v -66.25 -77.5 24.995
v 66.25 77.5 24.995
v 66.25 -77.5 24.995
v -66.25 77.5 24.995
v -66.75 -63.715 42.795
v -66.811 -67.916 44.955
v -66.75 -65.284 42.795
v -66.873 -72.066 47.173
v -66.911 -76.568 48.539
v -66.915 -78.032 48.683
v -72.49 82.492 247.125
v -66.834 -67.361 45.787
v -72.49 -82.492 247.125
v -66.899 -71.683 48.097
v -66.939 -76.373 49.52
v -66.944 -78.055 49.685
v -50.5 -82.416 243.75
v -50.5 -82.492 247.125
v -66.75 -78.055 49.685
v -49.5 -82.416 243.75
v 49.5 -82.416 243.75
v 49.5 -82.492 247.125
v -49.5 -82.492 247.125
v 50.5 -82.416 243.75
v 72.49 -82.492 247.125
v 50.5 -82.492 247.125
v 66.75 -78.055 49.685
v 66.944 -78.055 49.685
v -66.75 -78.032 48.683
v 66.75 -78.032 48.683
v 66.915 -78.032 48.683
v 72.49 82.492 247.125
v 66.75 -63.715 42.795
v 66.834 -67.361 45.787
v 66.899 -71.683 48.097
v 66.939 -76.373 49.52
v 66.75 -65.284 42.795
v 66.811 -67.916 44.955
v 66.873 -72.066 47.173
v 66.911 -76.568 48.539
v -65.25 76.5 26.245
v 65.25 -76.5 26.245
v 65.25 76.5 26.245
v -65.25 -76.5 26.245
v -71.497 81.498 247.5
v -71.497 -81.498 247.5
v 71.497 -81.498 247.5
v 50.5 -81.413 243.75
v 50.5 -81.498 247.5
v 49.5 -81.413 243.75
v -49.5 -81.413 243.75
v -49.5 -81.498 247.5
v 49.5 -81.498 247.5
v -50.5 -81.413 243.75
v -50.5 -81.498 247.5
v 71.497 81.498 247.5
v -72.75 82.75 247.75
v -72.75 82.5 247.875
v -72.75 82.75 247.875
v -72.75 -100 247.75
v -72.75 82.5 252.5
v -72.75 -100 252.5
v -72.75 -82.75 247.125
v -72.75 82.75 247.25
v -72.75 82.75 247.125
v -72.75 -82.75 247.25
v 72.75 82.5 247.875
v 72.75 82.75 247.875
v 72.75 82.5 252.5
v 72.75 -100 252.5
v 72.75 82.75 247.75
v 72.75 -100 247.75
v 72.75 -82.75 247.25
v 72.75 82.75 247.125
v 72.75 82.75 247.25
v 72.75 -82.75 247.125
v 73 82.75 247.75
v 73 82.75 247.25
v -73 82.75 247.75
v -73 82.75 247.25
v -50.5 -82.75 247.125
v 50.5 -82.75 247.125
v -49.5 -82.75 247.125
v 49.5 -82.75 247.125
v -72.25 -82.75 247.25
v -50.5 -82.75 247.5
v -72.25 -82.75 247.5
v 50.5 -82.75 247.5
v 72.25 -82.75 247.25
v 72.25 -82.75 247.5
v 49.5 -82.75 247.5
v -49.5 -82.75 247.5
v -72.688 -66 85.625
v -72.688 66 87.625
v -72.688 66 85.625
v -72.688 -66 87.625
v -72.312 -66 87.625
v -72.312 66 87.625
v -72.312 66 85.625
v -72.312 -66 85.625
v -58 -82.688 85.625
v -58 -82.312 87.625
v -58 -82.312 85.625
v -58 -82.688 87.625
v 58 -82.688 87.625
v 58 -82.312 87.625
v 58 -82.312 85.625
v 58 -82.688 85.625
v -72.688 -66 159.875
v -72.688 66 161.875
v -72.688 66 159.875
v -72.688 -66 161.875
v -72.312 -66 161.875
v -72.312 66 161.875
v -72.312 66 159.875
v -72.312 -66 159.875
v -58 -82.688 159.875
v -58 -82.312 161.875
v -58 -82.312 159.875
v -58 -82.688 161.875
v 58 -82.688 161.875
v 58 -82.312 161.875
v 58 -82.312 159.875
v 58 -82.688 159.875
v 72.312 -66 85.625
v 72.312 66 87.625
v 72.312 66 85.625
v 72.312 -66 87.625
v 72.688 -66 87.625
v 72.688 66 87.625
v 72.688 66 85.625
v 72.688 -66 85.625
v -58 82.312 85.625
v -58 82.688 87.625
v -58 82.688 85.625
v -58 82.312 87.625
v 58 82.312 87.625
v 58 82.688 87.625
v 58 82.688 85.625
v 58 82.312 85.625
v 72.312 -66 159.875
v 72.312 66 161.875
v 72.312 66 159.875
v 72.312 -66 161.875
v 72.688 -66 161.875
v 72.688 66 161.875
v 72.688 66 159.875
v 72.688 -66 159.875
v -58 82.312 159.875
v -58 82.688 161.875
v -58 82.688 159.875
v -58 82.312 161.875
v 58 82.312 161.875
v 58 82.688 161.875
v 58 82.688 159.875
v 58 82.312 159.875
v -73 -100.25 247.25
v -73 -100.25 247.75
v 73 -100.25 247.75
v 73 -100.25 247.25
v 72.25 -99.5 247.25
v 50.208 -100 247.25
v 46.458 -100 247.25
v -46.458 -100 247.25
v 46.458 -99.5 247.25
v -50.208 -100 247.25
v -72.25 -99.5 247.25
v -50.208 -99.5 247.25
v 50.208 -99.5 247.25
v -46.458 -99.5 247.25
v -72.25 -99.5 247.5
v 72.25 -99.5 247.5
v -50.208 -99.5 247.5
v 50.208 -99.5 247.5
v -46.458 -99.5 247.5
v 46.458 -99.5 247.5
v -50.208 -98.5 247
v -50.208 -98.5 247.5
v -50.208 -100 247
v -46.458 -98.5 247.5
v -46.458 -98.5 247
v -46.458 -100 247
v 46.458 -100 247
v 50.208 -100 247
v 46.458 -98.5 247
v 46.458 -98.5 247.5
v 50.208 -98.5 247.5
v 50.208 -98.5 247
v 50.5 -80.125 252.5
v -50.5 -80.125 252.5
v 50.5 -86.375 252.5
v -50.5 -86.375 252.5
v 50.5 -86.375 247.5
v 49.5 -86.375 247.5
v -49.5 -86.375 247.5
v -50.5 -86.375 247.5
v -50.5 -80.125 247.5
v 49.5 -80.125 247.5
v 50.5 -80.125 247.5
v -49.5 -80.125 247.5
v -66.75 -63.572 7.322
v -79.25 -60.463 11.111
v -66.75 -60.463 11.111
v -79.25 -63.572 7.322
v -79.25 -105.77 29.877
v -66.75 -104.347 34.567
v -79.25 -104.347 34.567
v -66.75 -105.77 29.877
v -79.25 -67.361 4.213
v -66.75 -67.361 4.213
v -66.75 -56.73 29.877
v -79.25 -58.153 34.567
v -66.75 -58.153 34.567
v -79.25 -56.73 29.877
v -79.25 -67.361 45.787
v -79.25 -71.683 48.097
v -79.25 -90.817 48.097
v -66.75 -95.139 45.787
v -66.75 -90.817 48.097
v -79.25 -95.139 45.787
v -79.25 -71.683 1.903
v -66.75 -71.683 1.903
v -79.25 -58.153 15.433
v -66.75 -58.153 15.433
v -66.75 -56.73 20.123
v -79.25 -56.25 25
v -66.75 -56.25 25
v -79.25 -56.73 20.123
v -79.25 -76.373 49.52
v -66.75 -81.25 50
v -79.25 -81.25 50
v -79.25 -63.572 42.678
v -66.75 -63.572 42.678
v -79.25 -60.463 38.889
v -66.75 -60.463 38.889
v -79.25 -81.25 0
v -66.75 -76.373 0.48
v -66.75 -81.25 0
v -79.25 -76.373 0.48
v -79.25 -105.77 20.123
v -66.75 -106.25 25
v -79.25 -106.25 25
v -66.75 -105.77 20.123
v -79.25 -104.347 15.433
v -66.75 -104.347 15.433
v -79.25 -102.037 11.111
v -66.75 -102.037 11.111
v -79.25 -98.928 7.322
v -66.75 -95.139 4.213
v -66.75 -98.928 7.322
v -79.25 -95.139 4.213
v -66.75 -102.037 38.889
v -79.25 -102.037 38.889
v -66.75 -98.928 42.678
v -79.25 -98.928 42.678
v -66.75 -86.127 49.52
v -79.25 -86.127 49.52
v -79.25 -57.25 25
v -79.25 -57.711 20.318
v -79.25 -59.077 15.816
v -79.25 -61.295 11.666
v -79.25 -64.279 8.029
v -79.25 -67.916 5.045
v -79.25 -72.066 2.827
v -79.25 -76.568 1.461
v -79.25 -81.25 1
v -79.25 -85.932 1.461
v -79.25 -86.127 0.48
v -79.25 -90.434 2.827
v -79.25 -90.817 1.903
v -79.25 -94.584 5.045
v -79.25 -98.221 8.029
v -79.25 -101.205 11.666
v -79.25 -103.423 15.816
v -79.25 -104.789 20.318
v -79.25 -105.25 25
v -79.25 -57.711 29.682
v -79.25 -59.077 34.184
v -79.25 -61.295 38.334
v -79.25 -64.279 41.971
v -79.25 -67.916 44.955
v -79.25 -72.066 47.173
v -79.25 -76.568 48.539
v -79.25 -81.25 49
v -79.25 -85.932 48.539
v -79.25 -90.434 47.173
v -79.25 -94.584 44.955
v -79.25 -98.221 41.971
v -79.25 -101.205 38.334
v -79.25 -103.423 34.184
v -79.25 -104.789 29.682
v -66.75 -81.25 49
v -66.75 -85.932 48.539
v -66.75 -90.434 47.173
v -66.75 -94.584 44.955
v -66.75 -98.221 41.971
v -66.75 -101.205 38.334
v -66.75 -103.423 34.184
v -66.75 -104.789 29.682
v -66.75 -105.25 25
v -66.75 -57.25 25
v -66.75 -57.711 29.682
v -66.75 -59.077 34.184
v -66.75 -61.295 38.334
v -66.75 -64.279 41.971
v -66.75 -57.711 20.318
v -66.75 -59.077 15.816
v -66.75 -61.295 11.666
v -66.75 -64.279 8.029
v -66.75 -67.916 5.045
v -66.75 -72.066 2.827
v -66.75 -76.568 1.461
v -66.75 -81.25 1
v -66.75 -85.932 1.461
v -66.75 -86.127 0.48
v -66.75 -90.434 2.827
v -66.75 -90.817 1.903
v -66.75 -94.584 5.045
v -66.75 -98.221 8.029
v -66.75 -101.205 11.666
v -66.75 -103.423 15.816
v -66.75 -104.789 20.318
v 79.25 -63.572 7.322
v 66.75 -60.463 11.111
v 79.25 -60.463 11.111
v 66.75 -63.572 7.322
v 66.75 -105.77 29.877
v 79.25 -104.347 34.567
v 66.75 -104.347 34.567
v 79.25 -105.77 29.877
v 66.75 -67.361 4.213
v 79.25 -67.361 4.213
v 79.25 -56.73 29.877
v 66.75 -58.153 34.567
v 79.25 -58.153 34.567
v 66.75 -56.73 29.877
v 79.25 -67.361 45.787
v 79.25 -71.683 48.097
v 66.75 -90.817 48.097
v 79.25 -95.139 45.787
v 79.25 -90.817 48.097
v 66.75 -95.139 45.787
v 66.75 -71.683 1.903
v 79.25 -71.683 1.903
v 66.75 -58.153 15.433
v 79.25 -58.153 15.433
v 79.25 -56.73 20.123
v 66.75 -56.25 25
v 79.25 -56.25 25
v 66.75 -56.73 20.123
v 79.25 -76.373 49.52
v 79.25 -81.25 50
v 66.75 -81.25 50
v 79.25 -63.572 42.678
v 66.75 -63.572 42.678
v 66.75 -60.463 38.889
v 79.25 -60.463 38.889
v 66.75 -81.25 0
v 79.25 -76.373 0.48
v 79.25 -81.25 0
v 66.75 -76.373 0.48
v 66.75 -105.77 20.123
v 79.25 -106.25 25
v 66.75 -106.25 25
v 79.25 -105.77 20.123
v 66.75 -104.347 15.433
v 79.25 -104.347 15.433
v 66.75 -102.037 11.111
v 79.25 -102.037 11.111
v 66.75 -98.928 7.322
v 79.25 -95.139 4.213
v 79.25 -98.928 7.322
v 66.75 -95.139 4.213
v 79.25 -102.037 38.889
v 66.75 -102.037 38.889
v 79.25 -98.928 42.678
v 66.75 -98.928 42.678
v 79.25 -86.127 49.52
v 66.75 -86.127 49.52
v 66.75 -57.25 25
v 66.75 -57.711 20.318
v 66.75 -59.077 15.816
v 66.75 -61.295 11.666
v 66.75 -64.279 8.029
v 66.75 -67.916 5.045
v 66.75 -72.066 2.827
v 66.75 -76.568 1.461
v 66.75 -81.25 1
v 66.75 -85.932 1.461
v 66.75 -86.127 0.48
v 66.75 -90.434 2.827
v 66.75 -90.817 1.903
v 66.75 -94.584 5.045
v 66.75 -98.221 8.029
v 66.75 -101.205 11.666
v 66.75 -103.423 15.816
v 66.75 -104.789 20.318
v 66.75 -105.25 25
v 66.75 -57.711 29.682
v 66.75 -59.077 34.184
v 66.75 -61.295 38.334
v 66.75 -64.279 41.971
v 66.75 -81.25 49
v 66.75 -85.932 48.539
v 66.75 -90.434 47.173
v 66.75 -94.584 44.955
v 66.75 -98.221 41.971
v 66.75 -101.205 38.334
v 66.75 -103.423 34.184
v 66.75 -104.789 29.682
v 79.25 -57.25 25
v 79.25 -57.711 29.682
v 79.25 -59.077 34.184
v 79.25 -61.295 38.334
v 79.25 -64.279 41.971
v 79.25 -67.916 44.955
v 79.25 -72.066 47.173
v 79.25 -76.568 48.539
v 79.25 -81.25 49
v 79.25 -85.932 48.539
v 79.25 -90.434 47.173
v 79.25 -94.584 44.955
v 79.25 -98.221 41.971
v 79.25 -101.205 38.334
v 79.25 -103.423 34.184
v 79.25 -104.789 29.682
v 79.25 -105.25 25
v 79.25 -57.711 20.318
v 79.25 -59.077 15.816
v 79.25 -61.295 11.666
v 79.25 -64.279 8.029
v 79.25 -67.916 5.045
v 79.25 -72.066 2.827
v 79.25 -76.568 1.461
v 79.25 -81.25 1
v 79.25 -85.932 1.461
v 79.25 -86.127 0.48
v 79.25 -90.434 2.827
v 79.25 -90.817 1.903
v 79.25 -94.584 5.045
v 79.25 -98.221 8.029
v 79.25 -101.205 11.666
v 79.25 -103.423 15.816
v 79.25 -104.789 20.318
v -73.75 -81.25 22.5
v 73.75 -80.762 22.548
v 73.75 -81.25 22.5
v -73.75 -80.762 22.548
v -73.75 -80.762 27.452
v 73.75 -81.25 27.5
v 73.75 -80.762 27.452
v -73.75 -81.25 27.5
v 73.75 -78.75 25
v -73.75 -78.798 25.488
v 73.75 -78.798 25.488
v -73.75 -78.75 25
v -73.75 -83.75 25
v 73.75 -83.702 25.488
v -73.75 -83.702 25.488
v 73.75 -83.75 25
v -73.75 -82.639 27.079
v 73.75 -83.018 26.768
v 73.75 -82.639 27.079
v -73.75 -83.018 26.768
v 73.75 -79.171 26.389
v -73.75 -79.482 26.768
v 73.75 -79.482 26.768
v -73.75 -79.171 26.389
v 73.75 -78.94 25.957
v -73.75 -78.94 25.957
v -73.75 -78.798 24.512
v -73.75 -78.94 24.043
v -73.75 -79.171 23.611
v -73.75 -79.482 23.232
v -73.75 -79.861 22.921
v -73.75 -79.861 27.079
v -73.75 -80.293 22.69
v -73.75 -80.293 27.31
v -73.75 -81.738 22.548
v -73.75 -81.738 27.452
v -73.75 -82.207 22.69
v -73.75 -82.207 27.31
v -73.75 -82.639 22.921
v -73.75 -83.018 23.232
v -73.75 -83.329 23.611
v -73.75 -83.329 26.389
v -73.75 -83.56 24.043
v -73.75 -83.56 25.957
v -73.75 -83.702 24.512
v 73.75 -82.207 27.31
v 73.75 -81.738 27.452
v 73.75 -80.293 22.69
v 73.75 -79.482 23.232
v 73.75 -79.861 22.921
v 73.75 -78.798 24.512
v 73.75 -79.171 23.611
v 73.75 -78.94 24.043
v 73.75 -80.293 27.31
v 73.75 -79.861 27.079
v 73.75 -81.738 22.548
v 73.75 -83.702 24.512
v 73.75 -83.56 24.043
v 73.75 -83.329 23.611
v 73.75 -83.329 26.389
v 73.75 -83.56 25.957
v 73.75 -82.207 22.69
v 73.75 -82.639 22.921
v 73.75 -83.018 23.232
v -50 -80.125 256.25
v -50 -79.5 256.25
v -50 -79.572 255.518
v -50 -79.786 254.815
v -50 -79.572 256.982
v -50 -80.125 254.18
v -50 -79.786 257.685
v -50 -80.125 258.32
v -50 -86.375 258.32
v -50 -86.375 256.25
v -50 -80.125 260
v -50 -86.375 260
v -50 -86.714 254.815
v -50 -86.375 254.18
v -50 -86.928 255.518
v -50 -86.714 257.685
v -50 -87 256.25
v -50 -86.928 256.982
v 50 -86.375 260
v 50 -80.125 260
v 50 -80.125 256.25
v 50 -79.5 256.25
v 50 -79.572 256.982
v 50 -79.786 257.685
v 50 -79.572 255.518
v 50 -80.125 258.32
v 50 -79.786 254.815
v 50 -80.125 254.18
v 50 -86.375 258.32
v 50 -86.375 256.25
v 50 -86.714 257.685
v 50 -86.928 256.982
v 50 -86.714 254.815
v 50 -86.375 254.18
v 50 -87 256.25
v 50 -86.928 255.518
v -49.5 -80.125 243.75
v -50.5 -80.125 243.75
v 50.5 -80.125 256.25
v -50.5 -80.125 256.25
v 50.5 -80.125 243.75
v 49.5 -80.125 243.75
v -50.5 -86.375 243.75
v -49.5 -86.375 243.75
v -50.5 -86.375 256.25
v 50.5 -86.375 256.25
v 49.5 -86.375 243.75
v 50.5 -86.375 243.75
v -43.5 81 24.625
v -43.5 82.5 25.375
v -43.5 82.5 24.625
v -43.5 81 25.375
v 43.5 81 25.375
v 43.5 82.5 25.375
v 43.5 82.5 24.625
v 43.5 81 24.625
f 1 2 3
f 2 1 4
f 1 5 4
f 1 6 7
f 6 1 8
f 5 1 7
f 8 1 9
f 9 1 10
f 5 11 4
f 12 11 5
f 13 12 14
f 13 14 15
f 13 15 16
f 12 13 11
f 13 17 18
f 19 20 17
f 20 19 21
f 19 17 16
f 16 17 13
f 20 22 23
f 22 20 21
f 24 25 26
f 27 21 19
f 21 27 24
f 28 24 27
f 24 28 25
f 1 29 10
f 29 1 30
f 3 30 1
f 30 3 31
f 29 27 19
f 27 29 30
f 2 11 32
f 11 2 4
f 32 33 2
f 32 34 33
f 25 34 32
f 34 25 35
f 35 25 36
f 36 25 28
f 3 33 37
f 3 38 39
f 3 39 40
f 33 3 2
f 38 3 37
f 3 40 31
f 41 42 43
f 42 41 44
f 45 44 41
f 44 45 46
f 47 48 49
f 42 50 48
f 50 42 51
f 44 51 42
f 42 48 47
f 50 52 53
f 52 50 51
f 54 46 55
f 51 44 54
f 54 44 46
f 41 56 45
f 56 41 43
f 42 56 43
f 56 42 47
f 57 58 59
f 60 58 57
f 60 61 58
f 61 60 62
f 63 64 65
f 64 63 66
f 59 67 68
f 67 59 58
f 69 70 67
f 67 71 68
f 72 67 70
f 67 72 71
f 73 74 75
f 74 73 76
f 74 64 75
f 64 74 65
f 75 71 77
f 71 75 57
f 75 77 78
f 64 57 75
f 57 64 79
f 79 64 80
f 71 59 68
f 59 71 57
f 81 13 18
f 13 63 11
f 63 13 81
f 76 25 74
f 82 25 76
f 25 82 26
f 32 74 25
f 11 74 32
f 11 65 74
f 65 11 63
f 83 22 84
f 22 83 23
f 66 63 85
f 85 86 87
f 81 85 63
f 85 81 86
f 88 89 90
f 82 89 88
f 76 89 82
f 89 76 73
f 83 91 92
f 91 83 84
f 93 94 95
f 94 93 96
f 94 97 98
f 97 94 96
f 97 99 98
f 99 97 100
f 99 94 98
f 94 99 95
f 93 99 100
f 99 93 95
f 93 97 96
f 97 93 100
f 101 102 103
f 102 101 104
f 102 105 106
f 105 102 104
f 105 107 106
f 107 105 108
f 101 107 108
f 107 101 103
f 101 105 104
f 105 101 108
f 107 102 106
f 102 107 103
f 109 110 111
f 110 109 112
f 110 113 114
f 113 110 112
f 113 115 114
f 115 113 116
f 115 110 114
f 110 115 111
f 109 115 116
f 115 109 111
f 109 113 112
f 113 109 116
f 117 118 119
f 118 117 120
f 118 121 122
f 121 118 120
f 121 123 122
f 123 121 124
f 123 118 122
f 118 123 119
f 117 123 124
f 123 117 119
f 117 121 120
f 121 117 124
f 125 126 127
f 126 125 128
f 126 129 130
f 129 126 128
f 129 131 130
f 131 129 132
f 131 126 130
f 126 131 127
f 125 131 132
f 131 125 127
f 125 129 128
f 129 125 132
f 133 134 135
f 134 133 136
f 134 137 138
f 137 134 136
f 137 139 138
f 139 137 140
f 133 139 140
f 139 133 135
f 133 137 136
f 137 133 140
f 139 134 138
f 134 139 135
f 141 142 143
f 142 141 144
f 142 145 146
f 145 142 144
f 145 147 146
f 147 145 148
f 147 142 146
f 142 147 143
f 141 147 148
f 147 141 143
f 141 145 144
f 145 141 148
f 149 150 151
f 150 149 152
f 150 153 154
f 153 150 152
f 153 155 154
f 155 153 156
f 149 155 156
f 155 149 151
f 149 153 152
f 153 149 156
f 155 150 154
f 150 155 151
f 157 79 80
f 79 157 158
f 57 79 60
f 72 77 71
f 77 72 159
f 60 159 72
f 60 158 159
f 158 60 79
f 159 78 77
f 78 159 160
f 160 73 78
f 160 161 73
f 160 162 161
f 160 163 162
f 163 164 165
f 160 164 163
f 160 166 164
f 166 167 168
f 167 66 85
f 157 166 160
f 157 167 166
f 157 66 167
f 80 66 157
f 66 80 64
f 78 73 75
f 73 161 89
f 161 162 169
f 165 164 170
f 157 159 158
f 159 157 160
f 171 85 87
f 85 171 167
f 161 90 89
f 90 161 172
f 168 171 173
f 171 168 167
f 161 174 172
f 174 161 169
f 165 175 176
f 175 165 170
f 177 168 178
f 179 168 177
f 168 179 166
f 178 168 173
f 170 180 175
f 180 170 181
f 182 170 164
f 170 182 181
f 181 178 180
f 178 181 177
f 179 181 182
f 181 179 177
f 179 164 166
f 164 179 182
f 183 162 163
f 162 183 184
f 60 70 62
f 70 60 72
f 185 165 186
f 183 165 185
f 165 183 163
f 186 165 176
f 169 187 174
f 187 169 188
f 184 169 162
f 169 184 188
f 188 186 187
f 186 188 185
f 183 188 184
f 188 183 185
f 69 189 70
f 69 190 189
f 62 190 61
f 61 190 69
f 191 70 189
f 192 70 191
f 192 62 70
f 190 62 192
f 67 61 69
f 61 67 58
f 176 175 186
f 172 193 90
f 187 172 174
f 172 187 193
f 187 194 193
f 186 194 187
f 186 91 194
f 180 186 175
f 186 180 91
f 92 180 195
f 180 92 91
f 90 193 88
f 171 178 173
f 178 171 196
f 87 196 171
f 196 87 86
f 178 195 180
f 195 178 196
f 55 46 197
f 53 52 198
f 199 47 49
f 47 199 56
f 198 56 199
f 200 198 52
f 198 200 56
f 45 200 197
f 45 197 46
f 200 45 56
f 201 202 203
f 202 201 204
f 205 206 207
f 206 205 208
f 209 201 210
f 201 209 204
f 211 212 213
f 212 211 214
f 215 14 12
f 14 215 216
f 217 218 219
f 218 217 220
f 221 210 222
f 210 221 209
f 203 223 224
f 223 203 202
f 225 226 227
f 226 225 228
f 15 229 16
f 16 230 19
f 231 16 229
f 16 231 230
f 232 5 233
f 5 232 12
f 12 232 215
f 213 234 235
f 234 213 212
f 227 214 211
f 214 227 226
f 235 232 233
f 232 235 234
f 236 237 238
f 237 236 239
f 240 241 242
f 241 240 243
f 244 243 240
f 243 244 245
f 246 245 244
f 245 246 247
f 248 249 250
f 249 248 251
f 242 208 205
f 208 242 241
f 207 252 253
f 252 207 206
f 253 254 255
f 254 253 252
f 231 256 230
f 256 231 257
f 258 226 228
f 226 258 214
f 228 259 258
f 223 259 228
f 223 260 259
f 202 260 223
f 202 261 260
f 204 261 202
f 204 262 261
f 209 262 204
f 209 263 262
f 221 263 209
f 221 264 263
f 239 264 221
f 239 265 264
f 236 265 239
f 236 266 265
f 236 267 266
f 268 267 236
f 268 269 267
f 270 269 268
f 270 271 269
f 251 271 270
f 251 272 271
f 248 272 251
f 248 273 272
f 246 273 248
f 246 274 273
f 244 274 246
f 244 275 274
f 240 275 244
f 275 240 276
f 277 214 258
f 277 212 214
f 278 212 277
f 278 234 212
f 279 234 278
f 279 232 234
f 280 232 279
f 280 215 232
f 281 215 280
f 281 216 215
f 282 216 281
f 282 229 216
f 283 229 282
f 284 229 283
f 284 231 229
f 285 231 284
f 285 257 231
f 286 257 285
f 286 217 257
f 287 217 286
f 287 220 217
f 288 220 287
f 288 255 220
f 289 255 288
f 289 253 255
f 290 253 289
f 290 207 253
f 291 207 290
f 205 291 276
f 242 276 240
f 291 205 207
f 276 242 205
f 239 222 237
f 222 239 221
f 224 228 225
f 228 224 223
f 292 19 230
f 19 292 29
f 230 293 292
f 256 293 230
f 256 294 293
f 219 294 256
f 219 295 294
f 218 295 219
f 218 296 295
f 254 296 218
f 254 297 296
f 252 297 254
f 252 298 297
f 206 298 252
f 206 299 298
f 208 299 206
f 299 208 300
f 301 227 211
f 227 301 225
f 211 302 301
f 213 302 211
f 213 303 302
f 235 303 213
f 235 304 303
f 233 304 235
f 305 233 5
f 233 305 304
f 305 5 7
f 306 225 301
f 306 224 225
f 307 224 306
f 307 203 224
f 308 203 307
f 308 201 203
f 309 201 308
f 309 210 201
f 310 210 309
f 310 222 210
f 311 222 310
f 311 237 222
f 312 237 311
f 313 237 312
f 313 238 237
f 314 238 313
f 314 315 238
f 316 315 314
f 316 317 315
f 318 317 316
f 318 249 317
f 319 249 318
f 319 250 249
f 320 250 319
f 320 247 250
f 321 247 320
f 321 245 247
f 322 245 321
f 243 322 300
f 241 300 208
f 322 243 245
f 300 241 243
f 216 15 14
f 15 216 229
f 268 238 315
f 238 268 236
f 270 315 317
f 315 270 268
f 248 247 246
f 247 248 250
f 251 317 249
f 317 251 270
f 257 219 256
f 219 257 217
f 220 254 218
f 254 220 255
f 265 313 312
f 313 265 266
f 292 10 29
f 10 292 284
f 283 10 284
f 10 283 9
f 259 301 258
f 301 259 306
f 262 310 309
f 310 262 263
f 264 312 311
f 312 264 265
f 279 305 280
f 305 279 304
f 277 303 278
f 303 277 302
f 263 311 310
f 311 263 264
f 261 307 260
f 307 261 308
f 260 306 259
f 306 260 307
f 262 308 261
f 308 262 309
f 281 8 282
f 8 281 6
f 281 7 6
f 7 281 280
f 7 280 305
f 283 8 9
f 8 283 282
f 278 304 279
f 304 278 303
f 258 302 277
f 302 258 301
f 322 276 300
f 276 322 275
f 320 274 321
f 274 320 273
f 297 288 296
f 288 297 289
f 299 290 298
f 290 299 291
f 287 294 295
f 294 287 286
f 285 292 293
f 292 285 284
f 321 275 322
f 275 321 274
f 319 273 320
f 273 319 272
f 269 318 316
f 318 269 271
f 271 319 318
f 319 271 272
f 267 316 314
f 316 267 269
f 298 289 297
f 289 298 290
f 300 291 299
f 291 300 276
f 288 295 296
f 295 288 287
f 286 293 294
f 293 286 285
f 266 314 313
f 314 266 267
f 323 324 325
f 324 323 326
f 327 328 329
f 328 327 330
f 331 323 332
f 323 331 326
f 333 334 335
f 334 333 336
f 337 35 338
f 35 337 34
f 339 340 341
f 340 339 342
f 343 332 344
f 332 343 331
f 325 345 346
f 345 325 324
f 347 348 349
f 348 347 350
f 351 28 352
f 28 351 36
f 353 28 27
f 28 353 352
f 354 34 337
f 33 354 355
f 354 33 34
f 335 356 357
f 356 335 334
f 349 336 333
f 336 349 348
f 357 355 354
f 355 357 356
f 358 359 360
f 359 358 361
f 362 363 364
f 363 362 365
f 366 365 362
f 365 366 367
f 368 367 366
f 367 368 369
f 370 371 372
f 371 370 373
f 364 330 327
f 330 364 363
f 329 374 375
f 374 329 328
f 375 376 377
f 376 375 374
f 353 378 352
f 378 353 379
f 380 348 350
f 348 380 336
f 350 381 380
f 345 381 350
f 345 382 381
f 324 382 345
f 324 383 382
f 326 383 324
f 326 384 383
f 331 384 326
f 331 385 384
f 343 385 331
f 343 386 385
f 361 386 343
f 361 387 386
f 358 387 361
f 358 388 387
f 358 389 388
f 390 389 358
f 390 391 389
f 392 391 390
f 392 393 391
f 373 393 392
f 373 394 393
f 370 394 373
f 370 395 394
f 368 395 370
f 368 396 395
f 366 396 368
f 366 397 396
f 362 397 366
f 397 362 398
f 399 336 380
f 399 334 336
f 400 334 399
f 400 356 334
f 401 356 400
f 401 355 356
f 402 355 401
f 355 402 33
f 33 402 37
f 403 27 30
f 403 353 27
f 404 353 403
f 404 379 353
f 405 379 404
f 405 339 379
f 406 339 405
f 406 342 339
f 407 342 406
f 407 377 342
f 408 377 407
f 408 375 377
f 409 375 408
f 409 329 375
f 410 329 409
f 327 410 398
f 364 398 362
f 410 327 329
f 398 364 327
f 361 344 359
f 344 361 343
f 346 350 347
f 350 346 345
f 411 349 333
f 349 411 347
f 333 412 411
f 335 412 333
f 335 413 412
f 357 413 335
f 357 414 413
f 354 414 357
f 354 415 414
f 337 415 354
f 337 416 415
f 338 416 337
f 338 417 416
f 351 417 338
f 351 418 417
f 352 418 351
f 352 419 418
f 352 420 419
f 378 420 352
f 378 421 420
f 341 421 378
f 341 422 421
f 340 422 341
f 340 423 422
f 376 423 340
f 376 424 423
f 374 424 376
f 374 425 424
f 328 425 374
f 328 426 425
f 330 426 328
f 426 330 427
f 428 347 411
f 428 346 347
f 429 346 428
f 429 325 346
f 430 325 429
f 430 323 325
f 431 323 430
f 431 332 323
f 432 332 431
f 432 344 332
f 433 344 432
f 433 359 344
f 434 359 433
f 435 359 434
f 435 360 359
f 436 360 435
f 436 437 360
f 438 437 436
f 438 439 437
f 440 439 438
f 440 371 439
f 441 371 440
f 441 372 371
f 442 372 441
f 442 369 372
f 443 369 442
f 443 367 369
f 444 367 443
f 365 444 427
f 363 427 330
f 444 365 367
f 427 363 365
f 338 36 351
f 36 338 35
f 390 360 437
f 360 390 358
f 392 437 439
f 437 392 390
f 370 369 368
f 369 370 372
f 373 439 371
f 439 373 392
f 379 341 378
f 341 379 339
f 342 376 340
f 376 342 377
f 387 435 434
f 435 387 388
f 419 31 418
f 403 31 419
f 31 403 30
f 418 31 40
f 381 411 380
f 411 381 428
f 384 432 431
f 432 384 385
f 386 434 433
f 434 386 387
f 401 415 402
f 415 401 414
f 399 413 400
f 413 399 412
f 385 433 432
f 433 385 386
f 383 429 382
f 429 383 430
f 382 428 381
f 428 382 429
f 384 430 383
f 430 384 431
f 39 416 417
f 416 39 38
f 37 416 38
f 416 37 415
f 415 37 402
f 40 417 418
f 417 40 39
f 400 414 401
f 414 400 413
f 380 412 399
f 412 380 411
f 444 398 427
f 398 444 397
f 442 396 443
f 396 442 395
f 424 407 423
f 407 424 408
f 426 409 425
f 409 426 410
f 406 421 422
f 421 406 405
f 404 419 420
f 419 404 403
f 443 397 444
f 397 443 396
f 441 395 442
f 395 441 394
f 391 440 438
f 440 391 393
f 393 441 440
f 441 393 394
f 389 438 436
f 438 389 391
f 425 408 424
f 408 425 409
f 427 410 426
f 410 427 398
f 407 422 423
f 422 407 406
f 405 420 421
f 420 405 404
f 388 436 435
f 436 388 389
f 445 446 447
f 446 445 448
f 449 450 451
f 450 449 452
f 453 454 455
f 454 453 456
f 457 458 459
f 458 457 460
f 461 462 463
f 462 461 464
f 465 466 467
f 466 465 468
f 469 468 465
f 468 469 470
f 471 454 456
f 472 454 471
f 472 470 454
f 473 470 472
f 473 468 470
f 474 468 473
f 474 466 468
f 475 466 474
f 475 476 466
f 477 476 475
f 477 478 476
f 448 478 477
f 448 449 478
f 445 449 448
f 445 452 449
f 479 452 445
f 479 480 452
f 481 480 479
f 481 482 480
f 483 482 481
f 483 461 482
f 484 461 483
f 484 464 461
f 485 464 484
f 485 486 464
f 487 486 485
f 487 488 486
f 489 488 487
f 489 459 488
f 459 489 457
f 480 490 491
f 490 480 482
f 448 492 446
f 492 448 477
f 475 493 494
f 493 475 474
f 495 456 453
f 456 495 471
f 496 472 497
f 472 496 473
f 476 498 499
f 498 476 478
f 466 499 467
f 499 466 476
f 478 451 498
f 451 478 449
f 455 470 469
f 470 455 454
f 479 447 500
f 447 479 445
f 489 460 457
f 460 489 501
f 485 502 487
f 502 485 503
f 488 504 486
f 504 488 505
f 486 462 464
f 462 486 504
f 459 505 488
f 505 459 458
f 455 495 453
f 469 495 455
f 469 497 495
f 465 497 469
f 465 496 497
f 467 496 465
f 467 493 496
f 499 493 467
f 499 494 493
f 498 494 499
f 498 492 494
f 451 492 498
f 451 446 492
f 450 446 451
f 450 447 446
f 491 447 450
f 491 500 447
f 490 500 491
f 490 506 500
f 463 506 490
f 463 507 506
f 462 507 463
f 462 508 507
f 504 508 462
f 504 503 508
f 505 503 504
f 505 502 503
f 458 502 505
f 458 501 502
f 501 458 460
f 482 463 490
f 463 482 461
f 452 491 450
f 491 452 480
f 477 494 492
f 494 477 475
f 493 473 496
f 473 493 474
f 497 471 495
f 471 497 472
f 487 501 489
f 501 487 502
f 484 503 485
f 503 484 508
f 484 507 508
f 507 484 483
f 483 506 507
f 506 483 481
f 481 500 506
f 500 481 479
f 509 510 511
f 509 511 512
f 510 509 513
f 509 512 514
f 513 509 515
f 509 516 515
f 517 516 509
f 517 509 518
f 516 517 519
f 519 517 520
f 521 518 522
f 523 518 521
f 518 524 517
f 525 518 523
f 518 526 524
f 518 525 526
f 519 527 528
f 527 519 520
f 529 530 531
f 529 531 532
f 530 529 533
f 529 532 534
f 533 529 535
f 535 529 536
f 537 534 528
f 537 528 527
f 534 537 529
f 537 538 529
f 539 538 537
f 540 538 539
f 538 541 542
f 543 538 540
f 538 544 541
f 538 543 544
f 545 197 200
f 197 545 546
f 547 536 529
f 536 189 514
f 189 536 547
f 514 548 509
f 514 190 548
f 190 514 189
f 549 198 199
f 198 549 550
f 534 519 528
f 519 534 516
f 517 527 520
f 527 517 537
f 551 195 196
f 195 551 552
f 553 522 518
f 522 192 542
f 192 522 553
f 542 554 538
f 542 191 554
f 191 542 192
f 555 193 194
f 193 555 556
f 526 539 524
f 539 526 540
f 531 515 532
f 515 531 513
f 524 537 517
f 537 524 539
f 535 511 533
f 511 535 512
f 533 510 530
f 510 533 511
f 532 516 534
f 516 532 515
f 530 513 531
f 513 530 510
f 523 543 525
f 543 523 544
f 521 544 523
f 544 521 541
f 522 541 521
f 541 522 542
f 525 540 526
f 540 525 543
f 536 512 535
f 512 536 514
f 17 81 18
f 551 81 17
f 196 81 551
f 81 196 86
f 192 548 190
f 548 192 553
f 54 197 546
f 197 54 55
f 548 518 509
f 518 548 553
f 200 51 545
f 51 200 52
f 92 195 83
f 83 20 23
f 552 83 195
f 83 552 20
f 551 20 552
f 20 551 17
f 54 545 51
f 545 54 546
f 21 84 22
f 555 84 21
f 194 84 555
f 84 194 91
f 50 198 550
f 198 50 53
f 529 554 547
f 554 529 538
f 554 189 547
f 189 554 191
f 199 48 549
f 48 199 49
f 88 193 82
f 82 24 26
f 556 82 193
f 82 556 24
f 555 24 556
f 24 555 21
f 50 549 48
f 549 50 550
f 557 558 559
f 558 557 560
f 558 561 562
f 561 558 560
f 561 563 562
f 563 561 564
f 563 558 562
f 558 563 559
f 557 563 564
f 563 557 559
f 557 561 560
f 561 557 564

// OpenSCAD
// ══════════════════════════════════════════════════════════════
// SULO 240L Wheelie Bin — Accurate 1:3 Scale Model
// ══════════════════════════════════════════════════════════════
// Based on SULO Australia datasheet dimensions
// Print on Snapmaker U1 (270×270×270mm bed)
//
// Real dimensions → 1:3 scale
// External: 580w × 730d × 1060h → 193 × 243 × 353
// BUT 353mm height exceeds 270mm bed!
// So we print at 1:3.5 scale → 166 × 209 × 303 ... still too tall
// At 1:4 scale → 145 × 183 × 265 ✓ fits!

s = 1/4;  // scale factor

// ── SULO 240L Real Dimensions (mm) ──────────────────────────
// From SULO Australia datasheet
ext_w      = 580;      // external width
ext_d_body = 660;      // body depth (without lid overhang)
ext_d_total= 730;      // total depth including lid
ext_h_body = 990;      // body height (without lid)
ext_h_total= 1060;     // total height with lid closed

wall       = 4 * s;    // ~4mm real wall thickness
base_thick = 5 * s;    // thicker base

// Taper: bottom is narrower than top
// SULO tapers ~25mm per side width, ~20mm per side depth
taper_w    = 25;
taper_d    = 20;

// Wheels
wheel_dia  = 200;
wheel_w    = 50;
axle_dia   = 20;

// Handle
handle_w   = 400;      // handle bar width (real)
handle_h   = 30;       // handle bar height
handle_d   = 25;       // handle bar depth

// Lid
lid_thick  = 20;       // lid thickness
lid_overhang = ext_d_total - ext_d_body; // ~70mm overhang at rear

$fn = 32;

// ── Scaled values ───────────────────────────────────────────
sw  = ext_w * s;
sd  = ext_d_body * s;
sh  = ext_h_body * s;

st_w = taper_w * s;
st_d = taper_d * s;

swd = wheel_dia * s;
sww = wheel_w * s;
sad = axle_dia * s;

shw = handle_w * s;
shh = handle_h * s;
shd = handle_d * s;

slt = lid_thick * s;
slo = lid_overhang * s;

echo(str("Model size: ", sw, "w × ", sd + slo, "d × ", sh + slt + swd/2, "h mm"));

// ── Modules ─────────────────────────────────────────────────

module body() {
    color("DimGray") {
        difference() {
            // Outer tapered body
            hull() {
                // Top
                translate([0, 0, sh])
                    cube([sw, sd, 0.01], center=true);
                // Bottom (narrower)
                translate([0, 0, swd/2])  // raised above ground for wheel clearance
                    cube([sw - st_w*2, sd - st_d*2, 0.01], center=true);
            }
            // Inner cavity
            hull() {
                translate([0, 0, sh + 0.1])
                    cube([sw - wall*2, sd - wall*2, 0.01], center=true);
                translate([0, 0, swd/2 + base_thick])
                    cube([sw - wall*2 - st_w*2, sd - wall*2 - st_d*2, 0.01], center=true);
            }
        }

        // Rim at top (thickened lip)
        rim = 2 * s;
        translate([0, 0, sh])
            difference() {
                cube([sw + rim, sd + rim, 3*s], center=true);
                cube([sw - wall, sd - wall, 3*s + 0.1], center=true);
            }

        // Reinforcement ribs on sides (2 per side)
        for (side = [-1, 1]) {
            for (z = [sh * 0.35, sh * 0.65]) {
                // Width faces
                translate([side * sw/2, 0, z])
                    cube([1.5*s, sd * 0.8, 8*s], center=true);
                // Depth faces
                translate([0, side * sd/2, z])
                    cube([sw * 0.8, 1.5*s, 8*s], center=true);
            }
        }
    }
}

module lid() {
    color("Gold") {
        // Main lid — flat with slight dome
        translate([0, -slo/2, sh + slt/2])
            cube([sw + 2*s, sd + slo, slt], center=true);

        // Lid rim (hangs over edges slightly)
        translate([0, -slo/2, sh])
            difference() {
                cube([sw + 4*s, sd + slo + 2*s, 2*s], center=true);
                cube([sw - 2*s, sd + slo - 4*s, 2*s + 0.1], center=true);
            }

        // Hinge blocks at rear
        for (x = [-sw/3, sw/3]) {
            translate([x, -sd/2 - slo + 3*s, sh])
                cube([15*s, 6*s, 4*s], center=true);
        }
    }
}

module wheels() {
    color("DarkSlateGray") {
        // Axle
        translate([0, -sd/2 + 5*s, swd/2])
            rotate([0, 90, 0])
                cylinder(h = sw + 10*s, d = sad, center=true);

        // Two wheels
        for (side = [-1, 1]) {
            translate([side * (sw/2 + 2*s), -sd/2 + 5*s, swd/2])
                rotate([0, 90, 0])
                    difference() {
                        cylinder(h = sww, d = swd, center=true);
                        cylinder(h = sww + 0.1, d = swd - 8*s, center=true);
                    }
        }
    }
}

module handle() {
    color("DimGray") {
        // Handle bar across the rear top
        hw = shw;
        translate([0, -sd/2 - 3*s, sh + slt + shh/2]) {
            // Horizontal bar
            cube([hw, shd, shh], center=true);
            // Grip (rounded)
            rotate([0, 90, 0])
                cylinder(h = hw, d = shh, center=true);
        }

        // Handle supports (connect bar to lid/body)
        for (side = [-1, 1]) {
            translate([side * hw/2, -sd/2 - 3*s, sh + slt/2])
                cube([4*s, shd, shh + slt], center=true);
        }
    }
}

module foot_pedal_area() {
    // Small step/ledge at the front bottom for tipping
    color("DimGray")
        translate([0, sd/2 - 3*s, swd/2])
            cube([sw * 0.6, 6*s, 3*s], center=true);
}

// ── Assembly ────────────────────────────────────────────────

module sulo_240l() {
    body();
    lid();
    wheels();
    handle();
    foot_pedal_area();
}

sulo_240l();

// Print dimensions check
echo(str("=== PRINT SIZE CHECK ==="));
echo(str("Width:  ", sw + 10*s, "mm (inc wheels)"));
echo(str("Depth:  ", sd + slo + shd, "mm (inc lid overhang + handle)"));
echo(str("Height: ", sh + slt + shh + shh/2, "mm (inc lid + handle)"));
